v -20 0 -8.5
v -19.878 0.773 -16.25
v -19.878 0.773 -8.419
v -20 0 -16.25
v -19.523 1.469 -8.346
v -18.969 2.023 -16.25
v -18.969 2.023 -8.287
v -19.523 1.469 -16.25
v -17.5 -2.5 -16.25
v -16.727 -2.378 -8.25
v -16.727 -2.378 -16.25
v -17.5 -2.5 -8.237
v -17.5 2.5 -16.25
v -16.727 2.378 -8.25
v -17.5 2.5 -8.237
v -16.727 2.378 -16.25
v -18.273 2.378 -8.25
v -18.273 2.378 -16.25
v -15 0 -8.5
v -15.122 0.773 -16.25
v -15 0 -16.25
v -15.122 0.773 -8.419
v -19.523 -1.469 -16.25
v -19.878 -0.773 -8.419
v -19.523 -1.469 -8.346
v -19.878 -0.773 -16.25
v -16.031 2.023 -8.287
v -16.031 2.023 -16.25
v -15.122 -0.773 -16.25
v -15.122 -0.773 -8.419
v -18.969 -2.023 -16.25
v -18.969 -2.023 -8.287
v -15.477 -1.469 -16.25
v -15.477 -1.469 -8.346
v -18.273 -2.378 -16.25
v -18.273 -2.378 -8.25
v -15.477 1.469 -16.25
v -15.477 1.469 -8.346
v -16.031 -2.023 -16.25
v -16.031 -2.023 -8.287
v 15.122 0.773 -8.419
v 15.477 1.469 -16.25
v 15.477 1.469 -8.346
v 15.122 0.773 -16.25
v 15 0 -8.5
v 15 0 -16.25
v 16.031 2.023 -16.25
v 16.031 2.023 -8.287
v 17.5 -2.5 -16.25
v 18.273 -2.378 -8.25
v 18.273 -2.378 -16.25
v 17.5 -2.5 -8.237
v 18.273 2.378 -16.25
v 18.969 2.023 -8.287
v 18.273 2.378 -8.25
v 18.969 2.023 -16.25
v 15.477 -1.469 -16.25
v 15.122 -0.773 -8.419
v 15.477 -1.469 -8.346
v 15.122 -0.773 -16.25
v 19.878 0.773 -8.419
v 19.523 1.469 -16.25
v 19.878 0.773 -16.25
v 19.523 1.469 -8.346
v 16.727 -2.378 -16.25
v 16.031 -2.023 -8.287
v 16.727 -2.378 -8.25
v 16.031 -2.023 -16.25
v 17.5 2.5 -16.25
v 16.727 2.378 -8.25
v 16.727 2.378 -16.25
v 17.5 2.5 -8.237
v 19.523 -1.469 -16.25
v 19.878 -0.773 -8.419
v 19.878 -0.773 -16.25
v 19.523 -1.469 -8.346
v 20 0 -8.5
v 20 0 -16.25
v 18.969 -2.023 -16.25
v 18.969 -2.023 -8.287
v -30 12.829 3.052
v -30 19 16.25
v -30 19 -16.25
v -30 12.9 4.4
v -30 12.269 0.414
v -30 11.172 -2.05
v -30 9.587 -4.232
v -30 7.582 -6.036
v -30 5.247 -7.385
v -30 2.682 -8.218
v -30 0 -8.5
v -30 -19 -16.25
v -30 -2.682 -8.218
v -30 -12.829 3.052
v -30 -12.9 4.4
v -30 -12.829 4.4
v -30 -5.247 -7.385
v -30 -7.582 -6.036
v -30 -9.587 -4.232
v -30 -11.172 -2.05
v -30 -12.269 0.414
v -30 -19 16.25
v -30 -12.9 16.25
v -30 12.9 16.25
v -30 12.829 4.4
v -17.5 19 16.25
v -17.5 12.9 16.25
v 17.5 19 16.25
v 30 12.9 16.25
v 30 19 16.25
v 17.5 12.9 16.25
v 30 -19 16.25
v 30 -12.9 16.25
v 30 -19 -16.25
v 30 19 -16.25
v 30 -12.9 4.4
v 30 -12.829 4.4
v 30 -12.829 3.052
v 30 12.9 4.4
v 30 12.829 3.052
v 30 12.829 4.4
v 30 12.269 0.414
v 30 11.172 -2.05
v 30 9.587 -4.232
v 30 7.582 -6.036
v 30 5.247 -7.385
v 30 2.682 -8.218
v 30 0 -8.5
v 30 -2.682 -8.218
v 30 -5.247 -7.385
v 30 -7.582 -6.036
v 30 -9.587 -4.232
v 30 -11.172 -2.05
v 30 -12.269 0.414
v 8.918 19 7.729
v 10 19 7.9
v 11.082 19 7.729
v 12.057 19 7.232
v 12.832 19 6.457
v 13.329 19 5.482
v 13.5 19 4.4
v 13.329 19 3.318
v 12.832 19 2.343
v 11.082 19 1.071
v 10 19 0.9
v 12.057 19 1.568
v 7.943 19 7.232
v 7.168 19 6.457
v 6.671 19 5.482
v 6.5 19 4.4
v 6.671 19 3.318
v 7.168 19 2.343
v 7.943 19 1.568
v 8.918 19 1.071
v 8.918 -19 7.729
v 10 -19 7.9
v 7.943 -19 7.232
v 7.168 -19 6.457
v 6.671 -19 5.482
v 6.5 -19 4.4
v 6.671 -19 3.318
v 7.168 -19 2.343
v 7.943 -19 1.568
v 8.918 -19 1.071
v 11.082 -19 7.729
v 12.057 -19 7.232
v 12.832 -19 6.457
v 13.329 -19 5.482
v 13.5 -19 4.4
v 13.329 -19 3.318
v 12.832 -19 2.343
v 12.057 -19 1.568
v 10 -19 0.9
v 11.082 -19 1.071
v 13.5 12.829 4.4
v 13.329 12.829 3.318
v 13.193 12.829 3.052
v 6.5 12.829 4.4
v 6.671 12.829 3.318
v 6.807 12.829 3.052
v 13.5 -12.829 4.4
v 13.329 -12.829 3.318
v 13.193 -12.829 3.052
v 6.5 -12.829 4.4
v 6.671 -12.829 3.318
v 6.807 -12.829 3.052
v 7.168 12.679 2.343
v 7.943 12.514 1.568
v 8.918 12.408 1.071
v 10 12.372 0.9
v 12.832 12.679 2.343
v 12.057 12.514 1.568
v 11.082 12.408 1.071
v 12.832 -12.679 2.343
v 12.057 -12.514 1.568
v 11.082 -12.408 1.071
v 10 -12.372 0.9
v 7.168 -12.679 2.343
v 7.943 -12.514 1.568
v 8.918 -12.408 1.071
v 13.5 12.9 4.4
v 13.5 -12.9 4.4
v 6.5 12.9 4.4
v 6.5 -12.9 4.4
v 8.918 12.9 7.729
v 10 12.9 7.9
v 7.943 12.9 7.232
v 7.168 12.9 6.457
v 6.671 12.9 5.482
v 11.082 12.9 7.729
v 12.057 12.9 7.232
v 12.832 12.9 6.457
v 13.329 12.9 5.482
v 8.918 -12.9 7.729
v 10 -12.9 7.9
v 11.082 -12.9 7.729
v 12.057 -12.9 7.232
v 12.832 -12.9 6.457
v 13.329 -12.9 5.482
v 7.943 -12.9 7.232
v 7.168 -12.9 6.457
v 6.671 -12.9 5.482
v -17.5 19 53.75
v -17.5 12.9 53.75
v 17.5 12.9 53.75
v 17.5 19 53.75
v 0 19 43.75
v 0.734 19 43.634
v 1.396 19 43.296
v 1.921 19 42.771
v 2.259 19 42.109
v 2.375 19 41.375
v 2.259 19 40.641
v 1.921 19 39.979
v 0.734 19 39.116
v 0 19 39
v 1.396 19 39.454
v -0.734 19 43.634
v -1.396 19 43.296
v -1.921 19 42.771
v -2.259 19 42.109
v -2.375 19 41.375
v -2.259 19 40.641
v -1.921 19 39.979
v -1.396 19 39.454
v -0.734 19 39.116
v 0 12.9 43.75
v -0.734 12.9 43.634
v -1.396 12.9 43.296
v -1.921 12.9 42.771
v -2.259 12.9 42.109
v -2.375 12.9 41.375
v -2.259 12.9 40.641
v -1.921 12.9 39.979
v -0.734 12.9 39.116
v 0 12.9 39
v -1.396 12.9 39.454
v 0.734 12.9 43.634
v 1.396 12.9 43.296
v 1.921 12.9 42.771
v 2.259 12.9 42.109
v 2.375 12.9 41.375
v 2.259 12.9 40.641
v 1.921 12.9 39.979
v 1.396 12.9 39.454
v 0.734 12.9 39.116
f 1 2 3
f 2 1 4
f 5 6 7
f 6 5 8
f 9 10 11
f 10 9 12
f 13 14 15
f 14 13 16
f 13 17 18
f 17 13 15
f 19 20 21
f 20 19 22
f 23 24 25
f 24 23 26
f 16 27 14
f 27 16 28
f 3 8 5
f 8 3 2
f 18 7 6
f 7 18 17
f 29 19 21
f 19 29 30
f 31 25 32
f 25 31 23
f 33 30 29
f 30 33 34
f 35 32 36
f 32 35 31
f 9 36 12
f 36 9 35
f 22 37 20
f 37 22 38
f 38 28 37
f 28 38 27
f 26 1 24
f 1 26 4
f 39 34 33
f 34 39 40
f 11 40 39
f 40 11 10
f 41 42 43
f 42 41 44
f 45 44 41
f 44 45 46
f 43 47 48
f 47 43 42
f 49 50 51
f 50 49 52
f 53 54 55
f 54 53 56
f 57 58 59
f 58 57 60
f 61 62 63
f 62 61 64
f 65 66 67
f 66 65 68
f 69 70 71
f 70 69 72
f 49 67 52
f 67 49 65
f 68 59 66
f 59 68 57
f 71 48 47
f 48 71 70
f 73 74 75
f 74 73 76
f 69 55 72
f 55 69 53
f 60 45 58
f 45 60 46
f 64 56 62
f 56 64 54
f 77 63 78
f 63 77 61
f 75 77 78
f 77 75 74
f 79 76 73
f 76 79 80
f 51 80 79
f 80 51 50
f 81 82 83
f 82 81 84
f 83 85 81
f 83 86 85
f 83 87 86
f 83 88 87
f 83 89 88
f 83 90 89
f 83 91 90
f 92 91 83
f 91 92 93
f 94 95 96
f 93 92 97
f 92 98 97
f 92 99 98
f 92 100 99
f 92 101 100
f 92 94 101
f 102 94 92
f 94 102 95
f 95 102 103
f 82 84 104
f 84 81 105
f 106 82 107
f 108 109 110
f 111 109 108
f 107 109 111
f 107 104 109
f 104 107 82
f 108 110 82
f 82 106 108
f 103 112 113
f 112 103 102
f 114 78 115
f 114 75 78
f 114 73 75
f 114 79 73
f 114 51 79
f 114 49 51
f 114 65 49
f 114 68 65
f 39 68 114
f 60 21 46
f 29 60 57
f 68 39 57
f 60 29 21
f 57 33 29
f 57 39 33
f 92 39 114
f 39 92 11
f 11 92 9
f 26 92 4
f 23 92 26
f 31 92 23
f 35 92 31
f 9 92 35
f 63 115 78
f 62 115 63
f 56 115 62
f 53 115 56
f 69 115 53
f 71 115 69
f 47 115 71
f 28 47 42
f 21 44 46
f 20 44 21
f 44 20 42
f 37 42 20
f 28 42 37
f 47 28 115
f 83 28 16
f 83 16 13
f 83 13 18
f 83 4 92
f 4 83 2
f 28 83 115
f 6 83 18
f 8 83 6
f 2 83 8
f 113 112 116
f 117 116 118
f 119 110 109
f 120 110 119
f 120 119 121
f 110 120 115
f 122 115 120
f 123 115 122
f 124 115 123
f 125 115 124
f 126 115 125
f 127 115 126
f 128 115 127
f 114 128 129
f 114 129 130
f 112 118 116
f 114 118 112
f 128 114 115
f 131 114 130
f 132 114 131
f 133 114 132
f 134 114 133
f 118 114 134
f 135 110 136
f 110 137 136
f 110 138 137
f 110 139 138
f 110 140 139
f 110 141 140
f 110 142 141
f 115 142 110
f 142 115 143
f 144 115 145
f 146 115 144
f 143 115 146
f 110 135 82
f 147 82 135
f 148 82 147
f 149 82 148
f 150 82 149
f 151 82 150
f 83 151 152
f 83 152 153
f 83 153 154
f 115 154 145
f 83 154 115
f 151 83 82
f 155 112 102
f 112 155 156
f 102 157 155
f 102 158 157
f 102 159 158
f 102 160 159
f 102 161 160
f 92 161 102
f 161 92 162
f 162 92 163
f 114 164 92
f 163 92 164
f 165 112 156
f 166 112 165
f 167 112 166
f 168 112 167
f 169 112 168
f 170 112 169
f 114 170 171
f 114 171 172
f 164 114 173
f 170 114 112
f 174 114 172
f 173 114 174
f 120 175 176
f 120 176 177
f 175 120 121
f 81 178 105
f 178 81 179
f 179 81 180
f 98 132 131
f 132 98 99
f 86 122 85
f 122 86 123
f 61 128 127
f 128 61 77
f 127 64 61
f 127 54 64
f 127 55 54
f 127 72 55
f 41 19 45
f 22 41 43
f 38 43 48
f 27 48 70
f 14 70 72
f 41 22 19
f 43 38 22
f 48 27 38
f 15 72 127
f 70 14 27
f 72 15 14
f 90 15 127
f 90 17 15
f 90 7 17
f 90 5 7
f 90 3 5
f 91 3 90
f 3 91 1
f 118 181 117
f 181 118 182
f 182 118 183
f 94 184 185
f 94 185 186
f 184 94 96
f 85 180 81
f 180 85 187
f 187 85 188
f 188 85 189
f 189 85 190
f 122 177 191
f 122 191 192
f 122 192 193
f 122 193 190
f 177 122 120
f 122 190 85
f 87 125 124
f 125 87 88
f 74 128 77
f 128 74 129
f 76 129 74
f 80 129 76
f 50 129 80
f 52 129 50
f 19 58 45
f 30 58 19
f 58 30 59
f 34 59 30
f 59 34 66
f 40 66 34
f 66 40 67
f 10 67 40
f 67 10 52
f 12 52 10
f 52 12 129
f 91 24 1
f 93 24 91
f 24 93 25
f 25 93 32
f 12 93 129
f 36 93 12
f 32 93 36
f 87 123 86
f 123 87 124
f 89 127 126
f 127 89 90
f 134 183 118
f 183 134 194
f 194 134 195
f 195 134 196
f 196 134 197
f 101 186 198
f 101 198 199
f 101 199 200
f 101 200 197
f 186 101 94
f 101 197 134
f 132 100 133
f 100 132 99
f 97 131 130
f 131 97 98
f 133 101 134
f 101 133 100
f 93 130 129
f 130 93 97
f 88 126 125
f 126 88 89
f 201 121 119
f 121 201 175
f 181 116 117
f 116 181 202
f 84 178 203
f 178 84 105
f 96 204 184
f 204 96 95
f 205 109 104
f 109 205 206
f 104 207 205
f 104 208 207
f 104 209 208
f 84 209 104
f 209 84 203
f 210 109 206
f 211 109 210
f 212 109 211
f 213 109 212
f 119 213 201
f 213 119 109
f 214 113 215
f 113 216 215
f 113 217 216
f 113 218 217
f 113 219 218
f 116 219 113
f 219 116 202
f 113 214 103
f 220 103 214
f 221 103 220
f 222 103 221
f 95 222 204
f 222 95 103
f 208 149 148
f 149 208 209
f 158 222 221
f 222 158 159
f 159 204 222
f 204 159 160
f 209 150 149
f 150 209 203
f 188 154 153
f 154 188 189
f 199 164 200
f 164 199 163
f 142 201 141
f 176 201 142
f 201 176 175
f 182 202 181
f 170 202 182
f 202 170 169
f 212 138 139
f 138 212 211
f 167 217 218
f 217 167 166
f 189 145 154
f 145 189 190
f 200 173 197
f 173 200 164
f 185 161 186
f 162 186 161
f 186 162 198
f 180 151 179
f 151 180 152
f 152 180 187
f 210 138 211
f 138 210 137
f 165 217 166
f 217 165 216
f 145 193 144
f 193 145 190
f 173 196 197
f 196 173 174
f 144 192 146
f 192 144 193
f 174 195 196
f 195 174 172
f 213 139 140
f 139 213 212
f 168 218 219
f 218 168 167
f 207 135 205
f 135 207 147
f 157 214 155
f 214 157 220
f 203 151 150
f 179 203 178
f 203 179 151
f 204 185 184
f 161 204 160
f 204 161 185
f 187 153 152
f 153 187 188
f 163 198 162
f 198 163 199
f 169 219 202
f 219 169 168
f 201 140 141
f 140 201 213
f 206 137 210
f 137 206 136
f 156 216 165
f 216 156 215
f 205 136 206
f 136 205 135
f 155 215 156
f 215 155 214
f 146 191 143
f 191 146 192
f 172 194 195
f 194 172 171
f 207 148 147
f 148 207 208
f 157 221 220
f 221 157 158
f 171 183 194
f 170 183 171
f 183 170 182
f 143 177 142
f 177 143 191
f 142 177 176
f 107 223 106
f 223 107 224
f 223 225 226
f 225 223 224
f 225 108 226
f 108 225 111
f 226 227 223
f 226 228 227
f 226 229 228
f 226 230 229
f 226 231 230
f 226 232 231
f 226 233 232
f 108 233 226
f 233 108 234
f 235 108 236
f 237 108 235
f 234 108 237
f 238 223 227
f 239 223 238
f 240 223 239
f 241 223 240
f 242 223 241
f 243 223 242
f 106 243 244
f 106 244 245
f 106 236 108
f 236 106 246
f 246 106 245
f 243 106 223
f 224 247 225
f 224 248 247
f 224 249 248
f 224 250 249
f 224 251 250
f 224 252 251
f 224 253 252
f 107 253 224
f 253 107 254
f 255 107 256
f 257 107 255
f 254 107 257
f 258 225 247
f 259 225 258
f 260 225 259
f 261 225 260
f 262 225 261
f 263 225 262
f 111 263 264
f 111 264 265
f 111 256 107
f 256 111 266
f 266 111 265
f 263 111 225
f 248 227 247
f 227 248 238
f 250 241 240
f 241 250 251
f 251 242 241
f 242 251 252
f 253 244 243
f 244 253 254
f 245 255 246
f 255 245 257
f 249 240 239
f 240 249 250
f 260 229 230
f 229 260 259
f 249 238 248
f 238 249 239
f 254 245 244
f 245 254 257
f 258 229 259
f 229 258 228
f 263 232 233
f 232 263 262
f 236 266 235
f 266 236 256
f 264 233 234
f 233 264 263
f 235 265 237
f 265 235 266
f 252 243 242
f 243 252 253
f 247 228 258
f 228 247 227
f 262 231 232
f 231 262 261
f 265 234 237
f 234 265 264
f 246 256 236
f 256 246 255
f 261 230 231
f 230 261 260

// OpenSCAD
nakladka_sz = 38; //31.4
nakladka_dl = 60;
nakladka_h = 32.5;
dno_grubosc = 7.75;

rama_sr = 25.8;

sruba_sr = 5;
sruba_od_dna = 15.35;
sruba_od_boku = 12.7;
sruby_odstep = 35;

mocowanie_h = 37.5; //35
mocowanie_sr1 = 10; // lub 12
mocowanie_gr = (nakladka_sz-rama_sr)/2;
mocowanie_dl = 35;

module sruba_dziura(sr){
    rotate([90,0,0]){
        cylinder(h=nakladka_sz+30, d=sr, center=true, $fn=20);
        
    }
}

module mocowanie(h, sr1, gr, dl, sr2){
    difference(){
    cube([dl, gr, h],center = true);
    
  
    translate([0,0,h/2-10-sr2/2]){
    rotate([90,0,0]){
    cylinder(gr+10, d=sr2, center=true, $fn=20);
    }
    }
    
    }
}

mirror([1,0,0]){
union(){
    difference(){
        cube([nakladka_dl, nakladka_sz, nakladka_h], center=true);
        
        translate([0,0,-nakladka_h/2+dno_grubosc+rama_sr/2]){
        rotate([0,90,0]){
            cylinder(h=nakladka_dl+30, d=rama_sr, center=true);
            
        }
        }
        
        translate([0,0,dno_grubosc+rama_sr/2]){
            cube([nakladka_dl+30, rama_sr, nakladka_h],center = true);
        }
        rotate([-90,0,0]){
        translate([sruby_odstep/2,0,0]){
            sruba_dziura(sruba_sr);
            
            translate([-sruby_odstep,0,0]){
               sruba_dziura(sruba_sr); 
            }}
            

            
        }
        translate([-nakladka_dl/2+20,0,-nakladka_h/2+dno_grubosc+rama_sr/2]){
            rotate([0,0,0]){
                sruba_dziura(7); 
            }
        }

        
    }

    translate([0,nakladka_sz/2-mocowanie_gr/2,nakladka_h/2+mocowanie_h/2]){
        mocowanie(mocowanie_h, mocowanie_sr1, mocowanie_gr, mocowanie_dl, 4.75);
    }

}
}
